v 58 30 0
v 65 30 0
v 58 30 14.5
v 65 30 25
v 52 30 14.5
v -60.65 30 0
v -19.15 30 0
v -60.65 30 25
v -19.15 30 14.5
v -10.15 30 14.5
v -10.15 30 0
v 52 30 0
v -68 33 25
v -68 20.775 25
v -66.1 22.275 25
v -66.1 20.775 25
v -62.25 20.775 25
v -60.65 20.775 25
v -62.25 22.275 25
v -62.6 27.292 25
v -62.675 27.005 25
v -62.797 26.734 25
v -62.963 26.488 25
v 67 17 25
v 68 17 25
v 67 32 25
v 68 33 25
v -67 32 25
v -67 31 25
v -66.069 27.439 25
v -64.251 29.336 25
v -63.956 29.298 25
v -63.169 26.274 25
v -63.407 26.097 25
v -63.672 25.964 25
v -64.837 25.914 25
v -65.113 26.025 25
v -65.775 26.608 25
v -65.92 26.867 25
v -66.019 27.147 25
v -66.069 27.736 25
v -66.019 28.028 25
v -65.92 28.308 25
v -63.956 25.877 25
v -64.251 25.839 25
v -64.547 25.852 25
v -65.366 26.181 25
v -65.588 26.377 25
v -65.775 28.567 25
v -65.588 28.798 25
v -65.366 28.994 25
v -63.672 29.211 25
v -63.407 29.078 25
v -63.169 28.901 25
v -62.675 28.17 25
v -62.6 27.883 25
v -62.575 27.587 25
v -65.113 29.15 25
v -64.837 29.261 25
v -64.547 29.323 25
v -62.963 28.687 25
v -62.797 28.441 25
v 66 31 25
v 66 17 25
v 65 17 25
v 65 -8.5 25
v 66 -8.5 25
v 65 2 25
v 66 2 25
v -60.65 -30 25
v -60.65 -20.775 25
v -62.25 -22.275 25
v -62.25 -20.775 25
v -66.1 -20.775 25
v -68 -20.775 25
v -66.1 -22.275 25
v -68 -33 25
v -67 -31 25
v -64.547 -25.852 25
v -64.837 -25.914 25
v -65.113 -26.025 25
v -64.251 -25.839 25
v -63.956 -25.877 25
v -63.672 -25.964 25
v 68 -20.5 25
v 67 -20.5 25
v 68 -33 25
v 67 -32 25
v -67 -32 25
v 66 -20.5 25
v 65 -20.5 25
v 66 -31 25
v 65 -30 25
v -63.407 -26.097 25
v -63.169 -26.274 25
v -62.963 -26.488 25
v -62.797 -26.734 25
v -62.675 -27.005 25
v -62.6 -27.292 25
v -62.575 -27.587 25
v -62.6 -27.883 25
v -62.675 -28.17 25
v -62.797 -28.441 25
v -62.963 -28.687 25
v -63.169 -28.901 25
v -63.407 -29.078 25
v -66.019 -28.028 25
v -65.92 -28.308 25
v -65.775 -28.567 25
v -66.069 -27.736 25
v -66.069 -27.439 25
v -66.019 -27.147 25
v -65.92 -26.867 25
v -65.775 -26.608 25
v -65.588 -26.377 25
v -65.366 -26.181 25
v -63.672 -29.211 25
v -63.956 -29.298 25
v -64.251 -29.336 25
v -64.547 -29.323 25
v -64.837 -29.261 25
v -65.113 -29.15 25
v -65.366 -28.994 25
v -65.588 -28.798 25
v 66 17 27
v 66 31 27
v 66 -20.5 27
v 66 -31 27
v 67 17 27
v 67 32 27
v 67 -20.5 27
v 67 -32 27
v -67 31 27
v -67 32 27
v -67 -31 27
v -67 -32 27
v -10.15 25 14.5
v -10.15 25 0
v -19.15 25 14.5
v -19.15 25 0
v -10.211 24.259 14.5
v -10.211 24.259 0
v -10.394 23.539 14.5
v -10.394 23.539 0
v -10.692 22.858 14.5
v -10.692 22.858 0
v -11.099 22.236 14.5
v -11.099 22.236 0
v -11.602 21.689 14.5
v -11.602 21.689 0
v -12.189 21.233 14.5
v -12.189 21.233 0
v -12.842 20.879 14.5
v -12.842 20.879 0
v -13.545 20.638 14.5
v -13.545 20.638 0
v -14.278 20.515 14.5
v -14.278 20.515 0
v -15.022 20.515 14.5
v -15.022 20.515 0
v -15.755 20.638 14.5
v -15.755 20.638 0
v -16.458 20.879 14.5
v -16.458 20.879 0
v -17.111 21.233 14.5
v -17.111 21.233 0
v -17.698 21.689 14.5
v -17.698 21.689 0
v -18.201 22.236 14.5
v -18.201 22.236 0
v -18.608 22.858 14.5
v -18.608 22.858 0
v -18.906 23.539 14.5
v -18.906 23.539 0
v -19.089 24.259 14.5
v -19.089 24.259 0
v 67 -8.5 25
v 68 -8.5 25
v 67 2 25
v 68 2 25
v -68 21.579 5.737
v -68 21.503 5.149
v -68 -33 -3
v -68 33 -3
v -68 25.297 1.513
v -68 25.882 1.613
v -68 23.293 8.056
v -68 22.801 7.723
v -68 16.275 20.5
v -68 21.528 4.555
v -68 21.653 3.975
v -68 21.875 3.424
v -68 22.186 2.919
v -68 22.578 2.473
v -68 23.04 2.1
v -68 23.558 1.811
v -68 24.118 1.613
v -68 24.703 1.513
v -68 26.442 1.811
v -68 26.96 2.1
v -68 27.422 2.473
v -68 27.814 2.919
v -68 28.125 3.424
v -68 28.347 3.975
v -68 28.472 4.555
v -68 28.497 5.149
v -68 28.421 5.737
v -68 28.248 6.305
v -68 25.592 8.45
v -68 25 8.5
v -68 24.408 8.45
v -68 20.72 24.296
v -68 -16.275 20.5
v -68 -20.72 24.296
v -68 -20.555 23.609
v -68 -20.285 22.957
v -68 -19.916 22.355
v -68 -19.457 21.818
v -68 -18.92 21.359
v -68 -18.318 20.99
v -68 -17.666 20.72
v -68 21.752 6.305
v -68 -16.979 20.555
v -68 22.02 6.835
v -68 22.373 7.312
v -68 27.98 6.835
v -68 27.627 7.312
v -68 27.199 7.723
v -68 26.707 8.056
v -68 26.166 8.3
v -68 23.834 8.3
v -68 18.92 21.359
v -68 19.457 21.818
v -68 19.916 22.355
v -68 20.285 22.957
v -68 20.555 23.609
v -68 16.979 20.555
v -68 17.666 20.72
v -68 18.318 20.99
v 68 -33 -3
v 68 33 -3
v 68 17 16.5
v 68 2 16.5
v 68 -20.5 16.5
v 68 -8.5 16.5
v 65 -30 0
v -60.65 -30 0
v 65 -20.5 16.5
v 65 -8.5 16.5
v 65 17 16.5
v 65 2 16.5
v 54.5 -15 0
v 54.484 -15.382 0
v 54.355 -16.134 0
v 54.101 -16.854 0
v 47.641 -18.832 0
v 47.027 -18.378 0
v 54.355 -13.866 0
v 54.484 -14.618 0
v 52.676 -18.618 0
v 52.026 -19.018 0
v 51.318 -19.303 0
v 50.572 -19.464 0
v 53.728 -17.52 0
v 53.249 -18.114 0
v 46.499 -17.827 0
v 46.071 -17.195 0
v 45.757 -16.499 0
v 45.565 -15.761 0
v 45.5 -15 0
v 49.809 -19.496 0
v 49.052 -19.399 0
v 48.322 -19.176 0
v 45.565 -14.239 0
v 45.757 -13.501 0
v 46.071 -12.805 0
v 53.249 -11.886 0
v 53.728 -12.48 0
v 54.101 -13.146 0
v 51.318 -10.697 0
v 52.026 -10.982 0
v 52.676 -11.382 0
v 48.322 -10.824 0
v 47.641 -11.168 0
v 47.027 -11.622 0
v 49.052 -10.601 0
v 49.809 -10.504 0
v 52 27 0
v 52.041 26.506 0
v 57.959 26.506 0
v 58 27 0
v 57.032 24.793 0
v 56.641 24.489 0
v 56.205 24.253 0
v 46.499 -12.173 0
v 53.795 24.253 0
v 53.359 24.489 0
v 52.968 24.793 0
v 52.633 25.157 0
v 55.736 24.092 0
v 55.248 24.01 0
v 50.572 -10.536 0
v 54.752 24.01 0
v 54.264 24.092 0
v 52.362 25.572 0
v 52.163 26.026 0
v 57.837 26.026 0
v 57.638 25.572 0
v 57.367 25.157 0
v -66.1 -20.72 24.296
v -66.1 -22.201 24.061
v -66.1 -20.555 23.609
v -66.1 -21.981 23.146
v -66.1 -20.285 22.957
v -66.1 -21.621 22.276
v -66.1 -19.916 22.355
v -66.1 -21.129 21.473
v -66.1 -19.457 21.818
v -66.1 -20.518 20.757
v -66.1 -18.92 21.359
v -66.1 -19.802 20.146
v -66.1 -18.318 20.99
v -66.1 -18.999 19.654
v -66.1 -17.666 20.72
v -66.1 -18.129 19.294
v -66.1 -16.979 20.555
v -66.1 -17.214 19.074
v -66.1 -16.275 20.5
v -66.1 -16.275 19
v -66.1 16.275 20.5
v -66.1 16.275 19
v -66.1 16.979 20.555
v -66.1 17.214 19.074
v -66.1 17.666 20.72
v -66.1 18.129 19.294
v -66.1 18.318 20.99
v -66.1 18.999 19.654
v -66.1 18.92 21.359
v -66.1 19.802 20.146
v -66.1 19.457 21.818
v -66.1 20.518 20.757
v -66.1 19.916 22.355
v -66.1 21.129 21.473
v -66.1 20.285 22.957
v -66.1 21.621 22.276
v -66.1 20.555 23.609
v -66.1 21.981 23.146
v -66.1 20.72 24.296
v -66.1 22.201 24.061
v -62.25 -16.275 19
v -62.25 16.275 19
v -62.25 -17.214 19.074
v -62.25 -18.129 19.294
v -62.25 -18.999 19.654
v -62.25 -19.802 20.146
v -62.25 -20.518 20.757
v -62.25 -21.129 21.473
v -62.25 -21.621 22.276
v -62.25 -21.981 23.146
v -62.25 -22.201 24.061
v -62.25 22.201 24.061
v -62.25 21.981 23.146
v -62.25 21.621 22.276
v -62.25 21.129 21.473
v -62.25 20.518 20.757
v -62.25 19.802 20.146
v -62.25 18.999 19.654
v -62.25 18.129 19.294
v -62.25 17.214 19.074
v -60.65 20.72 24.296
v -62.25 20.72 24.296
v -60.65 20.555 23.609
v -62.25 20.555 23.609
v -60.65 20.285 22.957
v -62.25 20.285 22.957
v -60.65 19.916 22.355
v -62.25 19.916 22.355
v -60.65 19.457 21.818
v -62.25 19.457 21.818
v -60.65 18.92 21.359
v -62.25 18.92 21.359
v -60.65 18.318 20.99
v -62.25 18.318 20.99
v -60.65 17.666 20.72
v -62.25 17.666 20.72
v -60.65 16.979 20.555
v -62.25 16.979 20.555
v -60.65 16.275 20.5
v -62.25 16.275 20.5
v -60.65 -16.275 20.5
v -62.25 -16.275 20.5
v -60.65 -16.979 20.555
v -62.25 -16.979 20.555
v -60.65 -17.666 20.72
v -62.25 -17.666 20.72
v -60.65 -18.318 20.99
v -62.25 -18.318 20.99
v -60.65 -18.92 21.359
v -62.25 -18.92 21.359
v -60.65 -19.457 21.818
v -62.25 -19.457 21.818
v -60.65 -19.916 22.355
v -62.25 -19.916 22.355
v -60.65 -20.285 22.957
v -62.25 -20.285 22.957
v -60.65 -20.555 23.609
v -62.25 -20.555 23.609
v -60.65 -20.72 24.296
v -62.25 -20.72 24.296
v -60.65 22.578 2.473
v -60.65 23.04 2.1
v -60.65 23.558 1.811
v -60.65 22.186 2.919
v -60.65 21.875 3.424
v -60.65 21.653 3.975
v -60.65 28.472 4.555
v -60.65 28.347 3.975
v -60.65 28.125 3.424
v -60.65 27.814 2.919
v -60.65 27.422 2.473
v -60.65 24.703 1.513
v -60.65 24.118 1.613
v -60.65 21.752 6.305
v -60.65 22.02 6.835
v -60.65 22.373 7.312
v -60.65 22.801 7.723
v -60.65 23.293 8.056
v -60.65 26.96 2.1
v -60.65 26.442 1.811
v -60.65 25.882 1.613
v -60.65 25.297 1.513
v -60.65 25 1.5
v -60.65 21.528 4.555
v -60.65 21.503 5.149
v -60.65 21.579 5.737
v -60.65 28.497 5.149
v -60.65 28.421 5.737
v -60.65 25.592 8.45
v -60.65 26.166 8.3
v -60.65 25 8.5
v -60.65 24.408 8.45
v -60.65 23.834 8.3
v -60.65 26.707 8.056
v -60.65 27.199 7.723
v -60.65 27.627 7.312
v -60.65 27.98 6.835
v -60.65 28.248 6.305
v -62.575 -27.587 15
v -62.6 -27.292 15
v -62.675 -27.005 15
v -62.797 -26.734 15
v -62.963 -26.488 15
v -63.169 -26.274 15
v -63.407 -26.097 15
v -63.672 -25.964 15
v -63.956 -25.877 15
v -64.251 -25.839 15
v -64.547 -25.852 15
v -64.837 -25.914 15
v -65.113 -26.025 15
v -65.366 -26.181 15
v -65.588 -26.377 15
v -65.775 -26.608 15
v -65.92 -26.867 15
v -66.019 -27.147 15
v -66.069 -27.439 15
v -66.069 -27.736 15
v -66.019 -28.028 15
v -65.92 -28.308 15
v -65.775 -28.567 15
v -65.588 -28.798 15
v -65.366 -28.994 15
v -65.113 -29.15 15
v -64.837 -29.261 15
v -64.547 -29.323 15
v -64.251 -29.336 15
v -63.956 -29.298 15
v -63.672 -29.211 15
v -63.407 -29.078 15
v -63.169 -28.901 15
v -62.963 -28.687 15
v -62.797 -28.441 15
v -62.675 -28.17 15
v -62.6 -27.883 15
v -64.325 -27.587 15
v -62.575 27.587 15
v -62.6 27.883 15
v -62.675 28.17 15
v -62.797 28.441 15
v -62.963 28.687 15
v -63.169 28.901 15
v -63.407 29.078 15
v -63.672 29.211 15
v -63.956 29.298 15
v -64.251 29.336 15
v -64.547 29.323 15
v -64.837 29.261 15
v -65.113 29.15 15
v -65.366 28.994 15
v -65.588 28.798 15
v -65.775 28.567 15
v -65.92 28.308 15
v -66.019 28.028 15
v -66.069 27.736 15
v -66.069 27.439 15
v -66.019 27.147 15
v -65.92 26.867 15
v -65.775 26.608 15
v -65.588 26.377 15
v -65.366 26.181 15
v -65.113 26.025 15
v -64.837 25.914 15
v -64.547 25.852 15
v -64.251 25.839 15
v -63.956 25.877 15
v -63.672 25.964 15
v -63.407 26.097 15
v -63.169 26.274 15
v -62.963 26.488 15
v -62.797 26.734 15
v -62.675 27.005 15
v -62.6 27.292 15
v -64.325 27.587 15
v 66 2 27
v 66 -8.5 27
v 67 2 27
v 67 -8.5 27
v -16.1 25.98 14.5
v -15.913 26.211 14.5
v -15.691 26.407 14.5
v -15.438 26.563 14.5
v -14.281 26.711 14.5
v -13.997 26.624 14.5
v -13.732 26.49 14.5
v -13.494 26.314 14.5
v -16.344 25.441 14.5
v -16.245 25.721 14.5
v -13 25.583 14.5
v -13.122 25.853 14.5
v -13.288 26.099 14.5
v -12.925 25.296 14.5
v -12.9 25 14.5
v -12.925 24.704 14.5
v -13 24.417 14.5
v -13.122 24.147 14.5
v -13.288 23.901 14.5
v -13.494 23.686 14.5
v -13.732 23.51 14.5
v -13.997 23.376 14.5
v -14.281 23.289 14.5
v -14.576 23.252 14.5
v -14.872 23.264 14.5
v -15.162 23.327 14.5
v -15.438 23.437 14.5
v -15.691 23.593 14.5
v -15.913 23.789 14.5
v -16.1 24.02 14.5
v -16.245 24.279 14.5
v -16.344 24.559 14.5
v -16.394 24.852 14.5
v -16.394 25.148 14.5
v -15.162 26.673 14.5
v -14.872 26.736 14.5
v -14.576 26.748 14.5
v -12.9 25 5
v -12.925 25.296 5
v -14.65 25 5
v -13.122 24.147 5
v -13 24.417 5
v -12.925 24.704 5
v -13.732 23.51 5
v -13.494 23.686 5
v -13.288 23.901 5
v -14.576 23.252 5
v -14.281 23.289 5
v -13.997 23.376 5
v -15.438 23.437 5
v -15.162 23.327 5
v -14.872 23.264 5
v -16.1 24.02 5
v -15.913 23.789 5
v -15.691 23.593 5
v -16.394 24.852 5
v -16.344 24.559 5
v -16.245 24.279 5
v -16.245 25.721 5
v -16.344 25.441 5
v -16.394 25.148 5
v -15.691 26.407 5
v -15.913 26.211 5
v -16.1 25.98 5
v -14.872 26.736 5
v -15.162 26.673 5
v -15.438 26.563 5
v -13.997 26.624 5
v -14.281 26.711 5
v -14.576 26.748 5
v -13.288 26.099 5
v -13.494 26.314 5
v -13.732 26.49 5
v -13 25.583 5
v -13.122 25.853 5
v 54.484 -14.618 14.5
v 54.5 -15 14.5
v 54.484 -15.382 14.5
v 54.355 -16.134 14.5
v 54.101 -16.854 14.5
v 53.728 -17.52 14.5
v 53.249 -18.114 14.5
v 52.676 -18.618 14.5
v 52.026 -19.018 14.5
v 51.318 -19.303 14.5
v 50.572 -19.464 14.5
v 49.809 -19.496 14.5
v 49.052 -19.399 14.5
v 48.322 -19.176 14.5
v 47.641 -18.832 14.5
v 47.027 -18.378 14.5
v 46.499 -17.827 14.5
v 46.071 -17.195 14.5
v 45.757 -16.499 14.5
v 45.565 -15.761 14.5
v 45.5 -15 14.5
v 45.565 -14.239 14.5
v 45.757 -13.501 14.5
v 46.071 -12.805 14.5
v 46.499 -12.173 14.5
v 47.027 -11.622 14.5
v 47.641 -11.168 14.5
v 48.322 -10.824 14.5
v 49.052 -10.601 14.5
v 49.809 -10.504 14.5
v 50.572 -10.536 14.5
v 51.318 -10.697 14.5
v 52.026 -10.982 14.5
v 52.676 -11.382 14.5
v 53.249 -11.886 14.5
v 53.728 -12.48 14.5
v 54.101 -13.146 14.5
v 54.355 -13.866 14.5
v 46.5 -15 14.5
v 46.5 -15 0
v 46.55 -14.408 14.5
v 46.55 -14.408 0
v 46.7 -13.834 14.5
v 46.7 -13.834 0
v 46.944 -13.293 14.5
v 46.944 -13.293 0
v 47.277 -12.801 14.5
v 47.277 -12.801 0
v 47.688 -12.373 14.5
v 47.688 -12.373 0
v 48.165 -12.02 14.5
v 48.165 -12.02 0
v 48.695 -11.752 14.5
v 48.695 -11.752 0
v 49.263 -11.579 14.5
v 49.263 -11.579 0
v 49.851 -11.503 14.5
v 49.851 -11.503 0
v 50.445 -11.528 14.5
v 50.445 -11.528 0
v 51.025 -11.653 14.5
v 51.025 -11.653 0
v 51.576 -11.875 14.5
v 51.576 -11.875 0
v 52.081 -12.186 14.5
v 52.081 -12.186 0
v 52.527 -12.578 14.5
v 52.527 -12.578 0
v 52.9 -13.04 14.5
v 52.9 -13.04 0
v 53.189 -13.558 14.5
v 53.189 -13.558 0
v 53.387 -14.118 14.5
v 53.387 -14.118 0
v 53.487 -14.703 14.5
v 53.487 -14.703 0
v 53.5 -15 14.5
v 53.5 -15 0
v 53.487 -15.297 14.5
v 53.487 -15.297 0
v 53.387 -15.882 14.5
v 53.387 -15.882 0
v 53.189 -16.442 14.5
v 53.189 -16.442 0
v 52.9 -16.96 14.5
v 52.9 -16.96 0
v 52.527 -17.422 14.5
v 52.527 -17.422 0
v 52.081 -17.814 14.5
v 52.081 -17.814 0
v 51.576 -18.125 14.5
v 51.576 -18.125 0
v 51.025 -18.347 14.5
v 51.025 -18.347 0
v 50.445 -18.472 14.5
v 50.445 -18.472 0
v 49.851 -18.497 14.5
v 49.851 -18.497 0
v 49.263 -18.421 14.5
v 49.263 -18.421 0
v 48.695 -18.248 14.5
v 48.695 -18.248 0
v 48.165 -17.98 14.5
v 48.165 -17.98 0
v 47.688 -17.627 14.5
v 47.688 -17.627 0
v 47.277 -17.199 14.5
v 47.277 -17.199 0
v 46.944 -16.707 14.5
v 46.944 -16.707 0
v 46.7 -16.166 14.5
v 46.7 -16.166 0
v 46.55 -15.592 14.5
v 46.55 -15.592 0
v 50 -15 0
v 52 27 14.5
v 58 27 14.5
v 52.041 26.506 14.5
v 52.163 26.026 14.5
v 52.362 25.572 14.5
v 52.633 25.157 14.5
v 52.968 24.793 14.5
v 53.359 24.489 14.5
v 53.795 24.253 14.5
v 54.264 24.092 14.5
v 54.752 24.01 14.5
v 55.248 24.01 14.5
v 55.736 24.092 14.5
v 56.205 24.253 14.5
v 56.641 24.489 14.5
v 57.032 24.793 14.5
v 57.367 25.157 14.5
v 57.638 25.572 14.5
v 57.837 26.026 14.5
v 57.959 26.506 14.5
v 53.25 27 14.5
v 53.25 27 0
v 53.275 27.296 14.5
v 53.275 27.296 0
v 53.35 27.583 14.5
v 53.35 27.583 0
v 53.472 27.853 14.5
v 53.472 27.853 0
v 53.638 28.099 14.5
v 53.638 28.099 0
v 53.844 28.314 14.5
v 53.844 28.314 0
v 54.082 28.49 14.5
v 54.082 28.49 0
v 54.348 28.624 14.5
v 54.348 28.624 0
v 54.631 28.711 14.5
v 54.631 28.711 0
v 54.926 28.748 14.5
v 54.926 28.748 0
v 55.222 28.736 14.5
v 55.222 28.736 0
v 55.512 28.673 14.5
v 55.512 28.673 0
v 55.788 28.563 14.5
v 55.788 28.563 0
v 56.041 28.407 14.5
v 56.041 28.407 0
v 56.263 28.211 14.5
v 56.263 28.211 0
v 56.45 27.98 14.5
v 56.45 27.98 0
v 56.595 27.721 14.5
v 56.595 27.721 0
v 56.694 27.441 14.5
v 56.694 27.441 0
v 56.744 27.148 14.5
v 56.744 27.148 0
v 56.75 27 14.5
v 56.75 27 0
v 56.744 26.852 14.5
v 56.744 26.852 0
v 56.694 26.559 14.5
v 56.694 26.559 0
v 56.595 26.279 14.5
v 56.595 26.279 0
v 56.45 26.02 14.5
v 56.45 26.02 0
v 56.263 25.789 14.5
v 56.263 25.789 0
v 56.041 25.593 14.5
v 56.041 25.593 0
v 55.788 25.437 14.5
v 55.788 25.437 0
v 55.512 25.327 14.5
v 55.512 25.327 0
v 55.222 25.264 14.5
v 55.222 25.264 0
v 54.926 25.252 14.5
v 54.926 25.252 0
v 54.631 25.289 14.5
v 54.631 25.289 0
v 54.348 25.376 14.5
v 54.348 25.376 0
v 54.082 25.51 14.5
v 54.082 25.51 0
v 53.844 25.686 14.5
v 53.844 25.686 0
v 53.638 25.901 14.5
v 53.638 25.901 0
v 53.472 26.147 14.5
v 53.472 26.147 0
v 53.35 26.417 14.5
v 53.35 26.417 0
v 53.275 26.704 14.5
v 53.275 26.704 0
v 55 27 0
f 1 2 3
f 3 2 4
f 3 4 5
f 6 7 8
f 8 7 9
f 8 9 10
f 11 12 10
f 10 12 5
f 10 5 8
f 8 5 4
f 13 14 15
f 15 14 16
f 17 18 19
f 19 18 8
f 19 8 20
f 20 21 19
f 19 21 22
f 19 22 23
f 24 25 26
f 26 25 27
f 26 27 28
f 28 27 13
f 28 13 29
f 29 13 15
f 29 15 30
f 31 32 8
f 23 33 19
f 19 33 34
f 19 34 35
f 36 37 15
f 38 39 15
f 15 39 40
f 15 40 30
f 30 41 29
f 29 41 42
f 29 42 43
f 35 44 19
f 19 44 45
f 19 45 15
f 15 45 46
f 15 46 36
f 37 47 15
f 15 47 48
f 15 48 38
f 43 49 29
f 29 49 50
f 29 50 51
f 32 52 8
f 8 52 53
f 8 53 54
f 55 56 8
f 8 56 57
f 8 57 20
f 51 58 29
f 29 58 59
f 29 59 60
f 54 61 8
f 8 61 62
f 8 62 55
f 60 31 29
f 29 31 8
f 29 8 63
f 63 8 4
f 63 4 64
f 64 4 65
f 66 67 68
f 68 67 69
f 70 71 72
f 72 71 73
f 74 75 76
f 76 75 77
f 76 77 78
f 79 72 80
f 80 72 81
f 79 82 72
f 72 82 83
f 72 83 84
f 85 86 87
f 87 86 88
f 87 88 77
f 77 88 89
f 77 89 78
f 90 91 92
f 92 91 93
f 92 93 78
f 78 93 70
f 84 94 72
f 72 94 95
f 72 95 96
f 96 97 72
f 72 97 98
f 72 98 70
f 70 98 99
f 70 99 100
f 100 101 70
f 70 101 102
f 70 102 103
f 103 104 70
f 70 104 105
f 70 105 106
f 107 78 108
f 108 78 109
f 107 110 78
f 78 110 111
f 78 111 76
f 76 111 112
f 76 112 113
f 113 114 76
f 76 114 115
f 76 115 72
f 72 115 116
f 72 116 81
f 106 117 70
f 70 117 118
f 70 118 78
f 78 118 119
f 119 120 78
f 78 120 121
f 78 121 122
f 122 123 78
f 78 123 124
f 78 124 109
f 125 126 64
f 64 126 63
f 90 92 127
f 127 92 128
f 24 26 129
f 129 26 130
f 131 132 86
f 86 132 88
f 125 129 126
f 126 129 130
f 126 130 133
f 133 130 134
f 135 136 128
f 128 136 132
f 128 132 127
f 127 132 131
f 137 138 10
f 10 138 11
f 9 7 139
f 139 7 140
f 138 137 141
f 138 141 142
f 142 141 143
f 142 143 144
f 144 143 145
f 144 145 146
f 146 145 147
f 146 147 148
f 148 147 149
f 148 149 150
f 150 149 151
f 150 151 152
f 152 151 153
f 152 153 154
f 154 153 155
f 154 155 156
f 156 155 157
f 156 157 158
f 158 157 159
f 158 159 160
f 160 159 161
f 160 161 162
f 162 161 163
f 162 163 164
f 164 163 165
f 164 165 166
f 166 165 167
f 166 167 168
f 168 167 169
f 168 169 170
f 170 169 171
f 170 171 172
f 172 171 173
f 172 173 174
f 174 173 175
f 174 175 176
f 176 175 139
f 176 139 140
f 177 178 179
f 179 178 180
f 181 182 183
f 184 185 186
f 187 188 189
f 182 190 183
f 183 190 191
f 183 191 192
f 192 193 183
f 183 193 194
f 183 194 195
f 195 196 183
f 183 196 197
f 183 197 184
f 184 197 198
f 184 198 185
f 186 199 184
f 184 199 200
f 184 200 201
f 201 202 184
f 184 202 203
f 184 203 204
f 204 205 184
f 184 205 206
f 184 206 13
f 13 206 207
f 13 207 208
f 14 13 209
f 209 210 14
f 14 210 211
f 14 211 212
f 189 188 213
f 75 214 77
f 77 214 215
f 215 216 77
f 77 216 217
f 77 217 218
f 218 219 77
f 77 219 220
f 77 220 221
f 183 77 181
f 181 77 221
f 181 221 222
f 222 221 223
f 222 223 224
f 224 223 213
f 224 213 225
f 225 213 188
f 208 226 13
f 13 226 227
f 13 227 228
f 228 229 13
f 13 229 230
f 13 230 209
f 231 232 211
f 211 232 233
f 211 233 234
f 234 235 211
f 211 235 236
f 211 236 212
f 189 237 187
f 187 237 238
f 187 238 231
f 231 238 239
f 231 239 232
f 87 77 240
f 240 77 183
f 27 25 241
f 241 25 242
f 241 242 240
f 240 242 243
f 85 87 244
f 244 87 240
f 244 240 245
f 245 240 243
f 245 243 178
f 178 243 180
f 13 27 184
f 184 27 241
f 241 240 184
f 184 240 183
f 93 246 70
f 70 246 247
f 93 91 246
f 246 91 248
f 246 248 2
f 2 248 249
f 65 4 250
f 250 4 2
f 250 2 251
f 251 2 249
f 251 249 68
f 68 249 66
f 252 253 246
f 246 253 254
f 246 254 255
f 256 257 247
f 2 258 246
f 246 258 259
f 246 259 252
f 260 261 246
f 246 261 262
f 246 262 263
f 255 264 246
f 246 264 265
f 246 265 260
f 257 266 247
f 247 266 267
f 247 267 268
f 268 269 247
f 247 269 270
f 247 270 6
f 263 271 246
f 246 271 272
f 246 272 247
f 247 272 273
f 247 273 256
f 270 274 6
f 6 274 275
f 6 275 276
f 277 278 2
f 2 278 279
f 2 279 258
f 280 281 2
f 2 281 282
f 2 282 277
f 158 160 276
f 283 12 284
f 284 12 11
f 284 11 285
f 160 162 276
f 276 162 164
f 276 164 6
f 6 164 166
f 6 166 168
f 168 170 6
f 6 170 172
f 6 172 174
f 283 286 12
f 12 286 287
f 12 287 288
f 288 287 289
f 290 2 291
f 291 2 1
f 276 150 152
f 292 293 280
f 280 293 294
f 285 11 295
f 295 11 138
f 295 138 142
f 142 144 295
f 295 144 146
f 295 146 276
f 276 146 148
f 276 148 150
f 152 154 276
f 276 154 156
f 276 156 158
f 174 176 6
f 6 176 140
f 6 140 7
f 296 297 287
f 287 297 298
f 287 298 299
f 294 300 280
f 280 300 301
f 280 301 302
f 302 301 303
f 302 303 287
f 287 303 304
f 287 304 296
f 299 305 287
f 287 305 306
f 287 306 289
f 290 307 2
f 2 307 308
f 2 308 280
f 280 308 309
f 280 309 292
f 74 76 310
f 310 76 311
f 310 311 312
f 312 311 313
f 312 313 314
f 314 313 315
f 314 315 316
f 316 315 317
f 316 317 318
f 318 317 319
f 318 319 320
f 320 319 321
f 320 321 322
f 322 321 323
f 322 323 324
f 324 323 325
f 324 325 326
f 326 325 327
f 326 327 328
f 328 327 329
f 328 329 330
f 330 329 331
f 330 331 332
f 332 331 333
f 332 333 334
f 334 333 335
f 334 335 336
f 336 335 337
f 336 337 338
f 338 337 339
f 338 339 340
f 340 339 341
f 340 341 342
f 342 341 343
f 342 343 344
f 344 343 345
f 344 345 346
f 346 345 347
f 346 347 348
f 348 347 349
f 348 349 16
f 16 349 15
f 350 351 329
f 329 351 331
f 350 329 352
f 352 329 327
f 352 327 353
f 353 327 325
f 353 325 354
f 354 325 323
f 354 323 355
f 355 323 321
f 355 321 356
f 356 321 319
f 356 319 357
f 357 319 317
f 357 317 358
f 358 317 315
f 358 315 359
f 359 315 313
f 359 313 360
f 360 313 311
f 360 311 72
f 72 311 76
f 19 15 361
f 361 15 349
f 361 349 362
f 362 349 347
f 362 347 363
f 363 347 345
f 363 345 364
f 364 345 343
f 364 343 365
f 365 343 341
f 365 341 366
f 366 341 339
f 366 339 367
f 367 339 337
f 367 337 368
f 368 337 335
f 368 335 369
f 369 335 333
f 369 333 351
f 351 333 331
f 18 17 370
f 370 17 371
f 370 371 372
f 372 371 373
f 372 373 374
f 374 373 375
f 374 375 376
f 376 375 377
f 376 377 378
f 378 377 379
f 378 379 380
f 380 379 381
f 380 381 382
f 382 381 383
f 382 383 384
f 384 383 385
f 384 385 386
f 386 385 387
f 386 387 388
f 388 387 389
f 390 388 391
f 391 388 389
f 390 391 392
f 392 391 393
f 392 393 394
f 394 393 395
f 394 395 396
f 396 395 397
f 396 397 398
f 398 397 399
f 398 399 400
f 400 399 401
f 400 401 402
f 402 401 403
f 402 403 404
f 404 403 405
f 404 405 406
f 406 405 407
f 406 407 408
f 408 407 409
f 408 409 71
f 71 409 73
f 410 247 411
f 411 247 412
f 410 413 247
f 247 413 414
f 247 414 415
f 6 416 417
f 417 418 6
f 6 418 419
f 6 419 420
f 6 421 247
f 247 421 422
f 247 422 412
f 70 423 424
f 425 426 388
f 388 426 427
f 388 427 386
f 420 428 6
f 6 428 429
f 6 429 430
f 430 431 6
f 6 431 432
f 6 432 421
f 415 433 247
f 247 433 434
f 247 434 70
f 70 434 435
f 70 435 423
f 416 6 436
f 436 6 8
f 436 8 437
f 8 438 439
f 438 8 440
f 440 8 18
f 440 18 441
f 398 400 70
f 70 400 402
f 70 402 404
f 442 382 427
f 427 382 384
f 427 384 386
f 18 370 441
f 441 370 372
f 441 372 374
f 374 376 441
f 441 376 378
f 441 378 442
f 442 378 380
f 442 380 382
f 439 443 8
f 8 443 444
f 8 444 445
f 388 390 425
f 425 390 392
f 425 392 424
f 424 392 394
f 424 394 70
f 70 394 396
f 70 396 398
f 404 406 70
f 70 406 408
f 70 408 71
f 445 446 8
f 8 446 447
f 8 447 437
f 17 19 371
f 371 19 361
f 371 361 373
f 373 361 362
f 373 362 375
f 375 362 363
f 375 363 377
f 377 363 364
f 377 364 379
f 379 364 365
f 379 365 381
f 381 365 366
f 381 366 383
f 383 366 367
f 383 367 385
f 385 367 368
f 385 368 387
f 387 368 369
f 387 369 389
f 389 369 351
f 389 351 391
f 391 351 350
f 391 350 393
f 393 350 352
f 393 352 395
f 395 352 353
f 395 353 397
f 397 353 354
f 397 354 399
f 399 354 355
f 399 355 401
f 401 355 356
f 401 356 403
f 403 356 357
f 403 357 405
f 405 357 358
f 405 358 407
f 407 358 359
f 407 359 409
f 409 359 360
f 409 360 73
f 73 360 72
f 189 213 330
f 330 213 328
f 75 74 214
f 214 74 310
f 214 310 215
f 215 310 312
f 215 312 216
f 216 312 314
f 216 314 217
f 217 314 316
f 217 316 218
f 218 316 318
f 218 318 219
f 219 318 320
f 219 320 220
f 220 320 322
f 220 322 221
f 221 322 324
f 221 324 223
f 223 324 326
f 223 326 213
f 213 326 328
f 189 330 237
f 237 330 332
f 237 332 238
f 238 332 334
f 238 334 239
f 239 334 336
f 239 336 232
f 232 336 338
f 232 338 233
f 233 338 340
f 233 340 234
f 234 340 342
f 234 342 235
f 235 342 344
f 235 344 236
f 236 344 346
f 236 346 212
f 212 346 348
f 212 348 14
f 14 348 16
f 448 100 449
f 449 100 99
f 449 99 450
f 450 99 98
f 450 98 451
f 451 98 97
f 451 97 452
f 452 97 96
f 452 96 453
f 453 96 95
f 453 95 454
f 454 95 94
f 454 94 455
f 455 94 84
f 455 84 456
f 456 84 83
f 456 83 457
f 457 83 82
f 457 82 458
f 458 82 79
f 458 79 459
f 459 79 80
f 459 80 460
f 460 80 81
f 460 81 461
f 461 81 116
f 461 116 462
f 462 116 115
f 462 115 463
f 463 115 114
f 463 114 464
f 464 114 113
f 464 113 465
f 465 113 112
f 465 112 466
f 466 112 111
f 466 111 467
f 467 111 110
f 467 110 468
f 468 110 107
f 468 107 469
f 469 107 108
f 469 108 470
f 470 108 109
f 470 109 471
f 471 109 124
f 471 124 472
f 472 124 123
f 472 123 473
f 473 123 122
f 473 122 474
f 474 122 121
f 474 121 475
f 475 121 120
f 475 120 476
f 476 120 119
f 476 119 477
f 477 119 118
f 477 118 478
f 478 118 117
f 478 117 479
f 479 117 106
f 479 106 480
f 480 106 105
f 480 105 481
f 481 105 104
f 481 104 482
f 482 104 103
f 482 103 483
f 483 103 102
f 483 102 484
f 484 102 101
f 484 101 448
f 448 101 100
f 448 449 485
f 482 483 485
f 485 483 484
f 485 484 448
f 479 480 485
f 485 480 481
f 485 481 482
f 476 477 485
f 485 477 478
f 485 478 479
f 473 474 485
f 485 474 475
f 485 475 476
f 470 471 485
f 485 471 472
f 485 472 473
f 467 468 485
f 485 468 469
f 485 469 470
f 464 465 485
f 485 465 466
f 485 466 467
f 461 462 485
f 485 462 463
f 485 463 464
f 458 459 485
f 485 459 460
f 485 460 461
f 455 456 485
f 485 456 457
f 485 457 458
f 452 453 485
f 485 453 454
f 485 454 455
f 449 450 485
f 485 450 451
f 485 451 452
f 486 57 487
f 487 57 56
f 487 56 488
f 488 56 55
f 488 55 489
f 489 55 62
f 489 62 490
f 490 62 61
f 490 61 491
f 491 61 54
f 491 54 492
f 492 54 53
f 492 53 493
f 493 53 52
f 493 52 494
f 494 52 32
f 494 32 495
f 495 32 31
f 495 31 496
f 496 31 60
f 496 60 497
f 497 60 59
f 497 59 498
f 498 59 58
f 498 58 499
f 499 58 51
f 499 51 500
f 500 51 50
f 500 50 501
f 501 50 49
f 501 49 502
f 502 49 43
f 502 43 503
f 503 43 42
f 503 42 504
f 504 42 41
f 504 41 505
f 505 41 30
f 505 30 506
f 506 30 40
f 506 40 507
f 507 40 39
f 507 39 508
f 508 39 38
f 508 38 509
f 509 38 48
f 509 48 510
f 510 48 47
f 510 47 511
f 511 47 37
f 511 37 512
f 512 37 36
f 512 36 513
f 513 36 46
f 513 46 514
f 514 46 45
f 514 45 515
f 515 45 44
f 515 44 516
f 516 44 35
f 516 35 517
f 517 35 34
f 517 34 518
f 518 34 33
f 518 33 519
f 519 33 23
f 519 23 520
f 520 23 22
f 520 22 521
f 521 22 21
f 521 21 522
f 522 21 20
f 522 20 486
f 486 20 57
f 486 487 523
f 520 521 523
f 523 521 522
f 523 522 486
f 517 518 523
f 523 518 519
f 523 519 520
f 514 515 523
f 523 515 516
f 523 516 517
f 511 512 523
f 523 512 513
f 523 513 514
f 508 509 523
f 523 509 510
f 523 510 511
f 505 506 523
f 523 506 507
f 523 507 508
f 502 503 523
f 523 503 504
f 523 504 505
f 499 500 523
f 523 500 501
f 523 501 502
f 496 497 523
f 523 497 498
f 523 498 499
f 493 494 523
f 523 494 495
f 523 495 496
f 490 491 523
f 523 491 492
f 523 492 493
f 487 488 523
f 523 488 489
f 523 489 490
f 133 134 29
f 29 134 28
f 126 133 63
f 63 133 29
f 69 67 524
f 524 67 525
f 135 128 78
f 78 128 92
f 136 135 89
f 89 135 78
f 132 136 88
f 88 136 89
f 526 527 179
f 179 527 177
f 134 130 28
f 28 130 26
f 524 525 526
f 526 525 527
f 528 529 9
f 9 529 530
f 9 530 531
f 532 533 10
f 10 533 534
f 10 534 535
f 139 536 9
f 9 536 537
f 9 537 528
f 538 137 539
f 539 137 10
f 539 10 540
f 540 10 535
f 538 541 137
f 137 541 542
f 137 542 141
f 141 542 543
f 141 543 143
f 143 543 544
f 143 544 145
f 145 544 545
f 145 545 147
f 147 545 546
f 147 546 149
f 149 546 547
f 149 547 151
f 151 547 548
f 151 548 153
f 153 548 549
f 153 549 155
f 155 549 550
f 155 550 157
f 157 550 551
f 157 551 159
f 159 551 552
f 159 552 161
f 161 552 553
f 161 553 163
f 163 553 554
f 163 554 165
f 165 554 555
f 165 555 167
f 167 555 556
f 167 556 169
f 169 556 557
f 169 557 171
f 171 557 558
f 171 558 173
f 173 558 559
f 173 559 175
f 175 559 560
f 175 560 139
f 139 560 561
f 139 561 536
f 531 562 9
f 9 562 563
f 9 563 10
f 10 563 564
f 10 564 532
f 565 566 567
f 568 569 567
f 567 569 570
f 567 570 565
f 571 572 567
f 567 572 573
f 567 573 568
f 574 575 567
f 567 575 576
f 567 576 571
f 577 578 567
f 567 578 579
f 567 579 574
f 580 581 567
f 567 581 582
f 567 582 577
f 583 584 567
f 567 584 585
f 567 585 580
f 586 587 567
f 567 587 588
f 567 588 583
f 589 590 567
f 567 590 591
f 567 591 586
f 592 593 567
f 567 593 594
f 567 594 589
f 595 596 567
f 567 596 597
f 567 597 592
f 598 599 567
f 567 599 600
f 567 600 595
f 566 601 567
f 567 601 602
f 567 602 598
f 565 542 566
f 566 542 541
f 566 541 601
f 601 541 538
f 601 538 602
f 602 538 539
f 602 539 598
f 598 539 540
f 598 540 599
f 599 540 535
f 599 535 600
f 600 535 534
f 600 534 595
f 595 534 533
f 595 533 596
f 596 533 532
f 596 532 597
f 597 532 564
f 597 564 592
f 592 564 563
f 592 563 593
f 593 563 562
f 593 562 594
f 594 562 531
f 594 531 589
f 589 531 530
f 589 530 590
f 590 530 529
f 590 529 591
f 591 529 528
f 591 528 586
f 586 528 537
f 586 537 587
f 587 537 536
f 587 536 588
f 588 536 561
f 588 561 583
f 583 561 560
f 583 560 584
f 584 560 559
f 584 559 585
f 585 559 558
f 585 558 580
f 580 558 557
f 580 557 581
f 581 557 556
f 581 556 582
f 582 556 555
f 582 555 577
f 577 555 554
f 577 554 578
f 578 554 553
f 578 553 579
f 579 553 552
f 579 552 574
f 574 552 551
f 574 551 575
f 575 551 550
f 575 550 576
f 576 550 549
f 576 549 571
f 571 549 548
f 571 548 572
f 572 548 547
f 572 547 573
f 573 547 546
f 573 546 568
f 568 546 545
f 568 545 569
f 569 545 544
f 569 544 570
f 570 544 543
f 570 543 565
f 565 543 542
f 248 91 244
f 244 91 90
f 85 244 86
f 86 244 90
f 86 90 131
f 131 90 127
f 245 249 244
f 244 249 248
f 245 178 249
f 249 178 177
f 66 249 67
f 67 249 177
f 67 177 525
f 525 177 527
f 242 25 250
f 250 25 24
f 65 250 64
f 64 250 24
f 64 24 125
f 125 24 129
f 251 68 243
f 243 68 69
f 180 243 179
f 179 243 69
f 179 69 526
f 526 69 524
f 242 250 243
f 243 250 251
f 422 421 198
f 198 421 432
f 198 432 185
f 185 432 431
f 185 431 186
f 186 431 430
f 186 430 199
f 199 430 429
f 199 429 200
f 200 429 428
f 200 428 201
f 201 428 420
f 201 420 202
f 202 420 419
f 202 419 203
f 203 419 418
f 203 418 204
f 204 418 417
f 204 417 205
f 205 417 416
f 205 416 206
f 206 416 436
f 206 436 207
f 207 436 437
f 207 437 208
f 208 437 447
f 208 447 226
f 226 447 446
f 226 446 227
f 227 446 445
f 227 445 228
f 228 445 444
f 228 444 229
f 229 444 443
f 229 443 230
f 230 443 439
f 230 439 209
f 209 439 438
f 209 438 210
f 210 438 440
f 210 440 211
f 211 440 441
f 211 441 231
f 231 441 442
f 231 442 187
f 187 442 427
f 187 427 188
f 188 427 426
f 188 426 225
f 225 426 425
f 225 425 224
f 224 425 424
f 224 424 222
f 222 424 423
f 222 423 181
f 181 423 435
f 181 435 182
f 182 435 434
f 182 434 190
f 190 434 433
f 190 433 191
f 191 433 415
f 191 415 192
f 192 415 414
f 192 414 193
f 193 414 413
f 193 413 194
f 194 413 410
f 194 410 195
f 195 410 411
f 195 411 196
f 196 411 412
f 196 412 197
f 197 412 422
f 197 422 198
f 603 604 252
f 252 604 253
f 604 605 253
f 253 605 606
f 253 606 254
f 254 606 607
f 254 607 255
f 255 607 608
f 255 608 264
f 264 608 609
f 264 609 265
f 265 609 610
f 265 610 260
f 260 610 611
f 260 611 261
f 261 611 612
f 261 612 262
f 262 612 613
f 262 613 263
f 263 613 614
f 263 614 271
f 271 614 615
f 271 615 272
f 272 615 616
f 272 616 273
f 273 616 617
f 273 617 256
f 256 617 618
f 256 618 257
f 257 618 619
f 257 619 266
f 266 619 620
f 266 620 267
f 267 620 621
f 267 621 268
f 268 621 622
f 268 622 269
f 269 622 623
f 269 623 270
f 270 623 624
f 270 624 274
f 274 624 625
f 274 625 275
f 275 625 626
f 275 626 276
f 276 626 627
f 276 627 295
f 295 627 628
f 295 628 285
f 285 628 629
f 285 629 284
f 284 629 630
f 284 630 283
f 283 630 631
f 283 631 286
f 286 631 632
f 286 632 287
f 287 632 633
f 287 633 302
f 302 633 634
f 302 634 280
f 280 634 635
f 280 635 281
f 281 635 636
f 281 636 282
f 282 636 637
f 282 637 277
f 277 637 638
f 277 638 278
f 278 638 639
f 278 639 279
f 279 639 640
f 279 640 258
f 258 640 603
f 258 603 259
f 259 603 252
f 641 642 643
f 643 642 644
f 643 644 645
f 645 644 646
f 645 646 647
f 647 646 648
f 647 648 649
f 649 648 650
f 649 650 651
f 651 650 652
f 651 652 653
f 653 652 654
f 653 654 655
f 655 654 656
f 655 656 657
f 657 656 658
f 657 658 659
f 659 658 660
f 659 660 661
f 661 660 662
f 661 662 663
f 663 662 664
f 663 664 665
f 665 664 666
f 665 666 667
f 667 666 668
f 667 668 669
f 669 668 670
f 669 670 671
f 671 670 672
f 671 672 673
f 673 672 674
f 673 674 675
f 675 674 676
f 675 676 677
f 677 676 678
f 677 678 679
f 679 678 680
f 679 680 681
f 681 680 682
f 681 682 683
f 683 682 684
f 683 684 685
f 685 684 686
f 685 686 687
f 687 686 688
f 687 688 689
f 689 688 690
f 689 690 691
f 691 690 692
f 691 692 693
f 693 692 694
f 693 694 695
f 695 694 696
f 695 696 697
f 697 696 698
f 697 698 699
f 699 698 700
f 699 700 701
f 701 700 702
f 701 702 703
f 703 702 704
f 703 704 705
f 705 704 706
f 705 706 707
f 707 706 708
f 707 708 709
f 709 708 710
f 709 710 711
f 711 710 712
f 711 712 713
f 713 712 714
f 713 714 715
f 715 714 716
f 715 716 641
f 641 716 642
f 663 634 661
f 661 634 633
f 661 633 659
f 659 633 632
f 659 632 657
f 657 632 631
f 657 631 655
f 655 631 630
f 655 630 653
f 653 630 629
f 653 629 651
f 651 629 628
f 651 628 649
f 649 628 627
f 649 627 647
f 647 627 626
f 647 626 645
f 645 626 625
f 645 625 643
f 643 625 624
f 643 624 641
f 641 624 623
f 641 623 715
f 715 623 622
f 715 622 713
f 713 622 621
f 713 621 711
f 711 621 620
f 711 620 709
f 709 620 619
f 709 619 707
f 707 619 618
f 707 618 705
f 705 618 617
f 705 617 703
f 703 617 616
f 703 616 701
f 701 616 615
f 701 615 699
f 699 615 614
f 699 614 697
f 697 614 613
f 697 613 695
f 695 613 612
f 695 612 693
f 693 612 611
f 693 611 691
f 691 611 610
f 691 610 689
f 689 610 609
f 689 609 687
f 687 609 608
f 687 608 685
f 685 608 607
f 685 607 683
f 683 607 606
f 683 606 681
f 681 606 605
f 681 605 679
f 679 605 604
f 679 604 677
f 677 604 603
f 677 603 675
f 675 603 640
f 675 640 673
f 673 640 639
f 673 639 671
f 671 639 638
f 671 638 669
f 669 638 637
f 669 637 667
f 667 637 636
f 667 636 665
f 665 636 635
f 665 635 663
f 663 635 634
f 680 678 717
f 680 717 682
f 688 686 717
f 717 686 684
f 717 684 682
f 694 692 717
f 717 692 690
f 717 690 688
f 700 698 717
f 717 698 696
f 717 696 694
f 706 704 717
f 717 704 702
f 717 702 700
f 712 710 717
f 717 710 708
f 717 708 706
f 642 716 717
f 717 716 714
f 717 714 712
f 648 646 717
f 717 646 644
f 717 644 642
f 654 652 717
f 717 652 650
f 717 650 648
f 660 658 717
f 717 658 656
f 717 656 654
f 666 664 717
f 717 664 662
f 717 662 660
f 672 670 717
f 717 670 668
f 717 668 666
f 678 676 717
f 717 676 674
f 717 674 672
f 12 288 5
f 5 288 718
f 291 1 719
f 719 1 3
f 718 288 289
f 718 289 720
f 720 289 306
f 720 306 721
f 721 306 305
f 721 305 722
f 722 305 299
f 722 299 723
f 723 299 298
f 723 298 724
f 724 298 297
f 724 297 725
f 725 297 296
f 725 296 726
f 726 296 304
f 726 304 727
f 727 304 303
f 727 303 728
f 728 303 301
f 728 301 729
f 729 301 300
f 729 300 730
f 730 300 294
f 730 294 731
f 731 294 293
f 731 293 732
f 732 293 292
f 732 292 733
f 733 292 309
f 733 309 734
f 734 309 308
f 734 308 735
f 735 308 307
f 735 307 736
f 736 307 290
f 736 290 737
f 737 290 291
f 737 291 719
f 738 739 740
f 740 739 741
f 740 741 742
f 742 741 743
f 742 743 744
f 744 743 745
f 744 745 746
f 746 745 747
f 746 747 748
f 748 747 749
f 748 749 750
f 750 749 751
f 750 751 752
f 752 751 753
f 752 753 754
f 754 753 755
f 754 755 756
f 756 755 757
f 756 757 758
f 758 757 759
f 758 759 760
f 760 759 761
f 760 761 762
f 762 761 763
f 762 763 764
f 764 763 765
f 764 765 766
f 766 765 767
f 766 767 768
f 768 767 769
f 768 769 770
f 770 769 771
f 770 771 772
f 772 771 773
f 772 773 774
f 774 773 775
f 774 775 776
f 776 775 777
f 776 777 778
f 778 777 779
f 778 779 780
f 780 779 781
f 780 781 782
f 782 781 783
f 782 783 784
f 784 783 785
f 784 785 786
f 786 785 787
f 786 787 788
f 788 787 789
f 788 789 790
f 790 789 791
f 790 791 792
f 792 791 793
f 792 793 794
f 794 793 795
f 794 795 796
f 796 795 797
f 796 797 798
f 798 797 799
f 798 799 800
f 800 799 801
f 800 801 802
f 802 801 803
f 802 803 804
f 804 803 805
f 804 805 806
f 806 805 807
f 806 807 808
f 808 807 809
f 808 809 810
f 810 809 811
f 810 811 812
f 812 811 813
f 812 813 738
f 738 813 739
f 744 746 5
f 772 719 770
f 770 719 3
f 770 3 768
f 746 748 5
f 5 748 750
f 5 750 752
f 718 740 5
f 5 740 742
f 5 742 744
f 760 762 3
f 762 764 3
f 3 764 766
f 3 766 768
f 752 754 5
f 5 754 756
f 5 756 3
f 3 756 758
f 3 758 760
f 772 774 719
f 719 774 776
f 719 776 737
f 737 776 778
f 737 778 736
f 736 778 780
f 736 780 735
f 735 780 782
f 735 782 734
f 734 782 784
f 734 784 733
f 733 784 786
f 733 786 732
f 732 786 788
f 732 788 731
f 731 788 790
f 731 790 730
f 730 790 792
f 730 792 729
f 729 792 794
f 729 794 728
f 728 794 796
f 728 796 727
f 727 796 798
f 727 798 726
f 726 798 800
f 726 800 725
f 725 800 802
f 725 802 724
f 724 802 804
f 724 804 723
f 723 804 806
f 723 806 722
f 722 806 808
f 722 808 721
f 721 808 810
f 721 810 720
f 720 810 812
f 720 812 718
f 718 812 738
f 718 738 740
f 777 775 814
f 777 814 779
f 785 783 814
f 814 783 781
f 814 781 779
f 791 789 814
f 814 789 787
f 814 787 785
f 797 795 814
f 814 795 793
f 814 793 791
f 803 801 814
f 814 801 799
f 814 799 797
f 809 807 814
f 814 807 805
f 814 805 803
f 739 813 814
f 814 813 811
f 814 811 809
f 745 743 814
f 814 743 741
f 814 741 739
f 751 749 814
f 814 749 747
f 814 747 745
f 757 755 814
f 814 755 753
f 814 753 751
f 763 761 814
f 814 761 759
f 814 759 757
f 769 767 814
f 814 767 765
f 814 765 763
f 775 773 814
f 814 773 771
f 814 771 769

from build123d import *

# Parameters (mm, degrees)
SZKIC1_W                    = 130
SZKIC1_H                    = 60
DODANIE_WYCI_GNI_CIE1_DEPTH = 25
SKORUPA1_T                  = 3
SZKIC3_W                    = 25
SZKIC3_H                    = 60
WYTNIJ_WYCI_GNI_CIE1_DEPTH  = 1.1
DODANIE_WYCI_GNI_CIE2_DEPTH = 3.85
DODANIE_WYCI_GNI_CIE3_DEPTH = 1.6
WYTNIJ_WYCI_GNI_CIE2_DEPTH  = 141.345324112
SZKIC8_R                    = 1.75
DODANIE_WYCI_GNI_CIE4_DEPTH = 25
SZKIC8_2_R                  = 1.75
WYTNIJ_WYCI_GNI_CIE3_DEPTH  = 10
DODANIE_WYCI_GNI_CIE5_START = 5
SZKIC9_R                    = 1.75
DODANIE_WYCI_GNI_CIE5_DEPTH = 5
DODANIE_WYCI_GNI_CIE6_DEPTH = 2
SZKIC11_W                   = 9
SZKIC11_H                   = 9.5
WYTNIJ_WYCI_GNI_CIE4_DEPTH  = 10.5
WYTNIJ_WYCI_GNI_CIE5_REACH  = 144.527
SZKIC15_W                   = 15
SZKIC15_H                   = 12
SZKIC15_H_2                 = 15
SZKIC16_R                   = 3.5
WYTNIJ_WYCI_GNI_CIE6_DEPTH  = 7.35
SZKIC17_R                   = 4.5
SZKIC17_R_2                 = 3.5
SZKIC17_R_3                 = 1.75
DODANIE_WYCI_GNI_CIE7_DEPTH = 14.5


with BuildPart() as part:
    # Szkic1 → Dodanie-wyciągnięcie1 (new body)
    with BuildSketch(Plane.XY):
        Rectangle(SZKIC1_W, SZKIC1_H)
    extrude(amount=DODANIE_WYCI_GNI_CIE1_DEPTH)

    # Skorupa1
    skorupa1_openings = [part.faces().sort_by_distance(p)[0] for p in [
        (0, 0, 25),
    ]]
    offset(amount=SKORUPA1_T, openings=skorupa1_openings, kind=Kind.INTERSECTION)

    # Szkic3 → Wytnij-wyciągnięcie1 (cut)
    with BuildSketch(Plane(origin=(-65, 0, 0), x_dir=(0, 0, -1), z_dir=(1, 0, 0))):
        with Locations((-12.5, 0)):
            Rectangle(SZKIC3_W, SZKIC3_H)
    extrude(amount=-WYTNIJ_WYCI_GNI_CIE1_DEPTH, mode=Mode.SUBTRACT)

    # Szkic4 → Dodanie-wyciągnięcie2 (add)
    with BuildSketch(Plane(origin=(-66.1, 0, 0), x_dir=(0, 0, -1), z_dir=(1, 0, 0))):
        with BuildLine():
            Line((0, 30), (-25, 30))
            Line((-25, 30), (-25, 22.275))
            ThreePointArc((-25, 22.275), (-20.757359313, 20.517640687), (-19, 16.275))
            Line((-19, 16.275), (-19, -16.275))
            ThreePointArc((-19, -16.275), (-20.757359313, -20.517640687), (-25, -22.275))
            Line((-25, -22.275), (-25, -30))
            Line((-25, -30), (0, -30))
            Line((0, -30), (0, 30))
        make_face()
    extrude(amount=DODANIE_WYCI_GNI_CIE2_DEPTH)

    # Szkic5 → Dodanie-wyciągnięcie3 (add)
    with BuildSketch(Plane(origin=(-62.25, 0, 0), x_dir=(0, 0, -1), z_dir=(1, 0, 0))):
        with BuildLine():
            ThreePointArc((-25, 20.775), (-21.818019485, 19.456980515), (-20.5, 16.275))
            Line((-20.5, 16.275), (-20.5, -16.275))
            ThreePointArc((-20.5, -16.275), (-21.818019485, -19.456980515), (-25, -20.775))
            Line((-25, -20.775), (-25, -30))
            Line((-25, -30), (0, -30))
            Line((0, -30), (0, 30))
            Line((0, 30), (-25, 30))
            Line((-25, 30), (-25, 20.775))
        make_face()
    extrude(amount=DODANIE_WYCI_GNI_CIE3_DEPTH)

    # Szkic6 → Wytnij-wyciągnięcie2 (cut, through all)
    with BuildSketch(Plane(origin=(-66.1, 0, 0), x_dir=(0, 0, -1), z_dir=(1, 0, 0))):
        with BuildLine():
            Line((-20.5, -16.275), (-20.5, 16.275))
            ThreePointArc((-20.5, 16.275), (-21.818019485, 19.456980515), (-25, 20.775))
            Line((-25, 20.775), (-25, -20.775))
            ThreePointArc((-25, -20.775), (-21.818019485, -19.456980515), (-20.5, -16.275))
        make_face()
    extrude(amount=-WYTNIJ_WYCI_GNI_CIE2_DEPTH, mode=Mode.SUBTRACT)

    # Szkic8 → Dodanie-wyciągnięcie4 (add)
    # profile 1 of 3: a face of its own
    with BuildSketch(Plane.XY.offset(25)):
        with Locations((-64.325, 27.5875)):
            Circle(SZKIC8_R)
    # profile 2 of 3: a face of its own
    with BuildSketch(Plane.XY.offset(25)):
        with Locations((-64.325, -27.5875)):
            Circle(SZKIC8_R)
    # profile 3 of 3: a face of its own
    with BuildSketch(Plane.XY.offset(25)):
        with BuildLine():
            Line((-19.15, 25), (-19.15, 30))
            Line((-19.15, 30), (-10.15, 30))
            Line((-10.15, 30), (-10.15, 25))
            ThreePointArc((-10.15, 25), (-14.65, 20.5), (-19.15, 25))
        make_face()
        with Locations((-14.65, 25)):
            Circle(SZKIC8_R, mode=Mode.SUBTRACT)
    extrude(amount=-DODANIE_WYCI_GNI_CIE4_DEPTH)

    # Szkic8<2> → Wytnij-wyciągnięcie3 (cut)
    with BuildSketch(Plane.XY.offset(25)):
        with Locations((-64.325, 27.5875)):
            Circle(SZKIC8_2_R)
        with Locations((-64.325, -27.5875)):
            Circle(SZKIC8_2_R)
    extrude(amount=-WYTNIJ_WYCI_GNI_CIE3_DEPTH, mode=Mode.SUBTRACT)

    # Szkic9 → Dodanie-wyciągnięcie5 (add)
    with BuildSketch(Plane.XY.offset(DODANIE_WYCI_GNI_CIE5_START)):
        with Locations((-14.65, 25)):
            Circle(SZKIC9_R)
    extrude(amount=-DODANIE_WYCI_GNI_CIE5_DEPTH)

    # Szkic10 → Dodanie-wyciągnięcie6 (add)
    with BuildSketch(Plane.XY.offset(25)):
        Polygon((-61.65, 31), (-67, 31), (-67, 32), (67, 32), (67, -32), (-67, -32), (-67, -31), (-61.65, -31), (66, -31), (66, 31), (-11.15, 31), (-18.15, 31), align=None)
    extrude(amount=DODANIE_WYCI_GNI_CIE6_DEPTH)

    # Szkic11 → Wytnij-wyciągnięcie4 (cut)
    with BuildSketch(Plane.XY.offset(25)):
        with Locations((-14.65, 25.25)):
            Rectangle(SZKIC11_W, SZKIC11_H)
    extrude(amount=-WYTNIJ_WYCI_GNI_CIE4_DEPTH, mode=Mode.SUBTRACT)

    # Szkic15 → Wytnij-wyciągnięcie5 (cut, up to next)
    with BuildSketch(Plane(origin=(68, 0, 0), x_dir=(0, 0, -1), z_dir=(1, 0, 0)), mode=Mode.PRIVATE) as wytnij_wyci_gni_cie5_sk1:
        with Locations((-24, -14.5)):
            Rectangle(SZKIC15_W, SZKIC15_H)
    wytnij_wyci_gni_cie5_tool1 = extrude(wytnij_wyci_gni_cie5_sk1.sketch, amount=-WYTNIJ_WYCI_GNI_CIE5_REACH, mode=Mode.PRIVATE) & part.part
    # Szkic15 → Wytnij-wyciągnięcie5 (cut, up to next)
    with BuildSketch(Plane(origin=(68, 0, 0), x_dir=(0, 0, -1), z_dir=(1, 0, 0)), mode=Mode.PRIVATE) as wytnij_wyci_gni_cie5_sk2:
        with Locations((-24, 9.5)):
            Rectangle(SZKIC15_W, SZKIC15_H_2)
    wytnij_wyci_gni_cie5_tool2 = extrude(wytnij_wyci_gni_cie5_sk2.sketch, amount=-WYTNIJ_WYCI_GNI_CIE5_REACH, mode=Mode.PRIVATE) & part.part
    add(wytnij_wyci_gni_cie5_tool1.solids().sort_by_distance((68, -14.5, 24))[0], mode=Mode.SUBTRACT)
    add(wytnij_wyci_gni_cie5_tool2.solids().sort_by_distance((68, 9.5, 24))[0], mode=Mode.SUBTRACT)

    # Szkic16 → Wytnij-wyciągnięcie6 (cut)
    with BuildSketch(Plane.ZY.offset(68)):
        with Locations((5, 25)):
            Circle(SZKIC16_R)
    extrude(amount=-WYTNIJ_WYCI_GNI_CIE6_DEPTH, mode=Mode.SUBTRACT)

    # Szkic17 → Dodanie-wyciągnięcie7 (add)
    # profile 1 of 2: a face of its own
    with BuildSketch(Plane.XY):
        with Locations((50, -15)):
            Circle(SZKIC17_R)
        with Locations((50, -15)):
            Circle(SZKIC17_R_2, mode=Mode.SUBTRACT)
    # profile 2 of 2: a face of its own
    with BuildSketch(Plane.XY):
        with BuildLine():
            Line((52, 27), (52, 30))
            Line((52, 30), (58, 30))
            Line((58, 30), (58, 27))
            ThreePointArc((58, 27), (55, 24), (52, 27))
        make_face()
        with Locations((55, 27)):
            Circle(SZKIC17_R_3, mode=Mode.SUBTRACT)
    extrude(amount=DODANIE_WYCI_GNI_CIE7_DEPTH)


solid = part.part
